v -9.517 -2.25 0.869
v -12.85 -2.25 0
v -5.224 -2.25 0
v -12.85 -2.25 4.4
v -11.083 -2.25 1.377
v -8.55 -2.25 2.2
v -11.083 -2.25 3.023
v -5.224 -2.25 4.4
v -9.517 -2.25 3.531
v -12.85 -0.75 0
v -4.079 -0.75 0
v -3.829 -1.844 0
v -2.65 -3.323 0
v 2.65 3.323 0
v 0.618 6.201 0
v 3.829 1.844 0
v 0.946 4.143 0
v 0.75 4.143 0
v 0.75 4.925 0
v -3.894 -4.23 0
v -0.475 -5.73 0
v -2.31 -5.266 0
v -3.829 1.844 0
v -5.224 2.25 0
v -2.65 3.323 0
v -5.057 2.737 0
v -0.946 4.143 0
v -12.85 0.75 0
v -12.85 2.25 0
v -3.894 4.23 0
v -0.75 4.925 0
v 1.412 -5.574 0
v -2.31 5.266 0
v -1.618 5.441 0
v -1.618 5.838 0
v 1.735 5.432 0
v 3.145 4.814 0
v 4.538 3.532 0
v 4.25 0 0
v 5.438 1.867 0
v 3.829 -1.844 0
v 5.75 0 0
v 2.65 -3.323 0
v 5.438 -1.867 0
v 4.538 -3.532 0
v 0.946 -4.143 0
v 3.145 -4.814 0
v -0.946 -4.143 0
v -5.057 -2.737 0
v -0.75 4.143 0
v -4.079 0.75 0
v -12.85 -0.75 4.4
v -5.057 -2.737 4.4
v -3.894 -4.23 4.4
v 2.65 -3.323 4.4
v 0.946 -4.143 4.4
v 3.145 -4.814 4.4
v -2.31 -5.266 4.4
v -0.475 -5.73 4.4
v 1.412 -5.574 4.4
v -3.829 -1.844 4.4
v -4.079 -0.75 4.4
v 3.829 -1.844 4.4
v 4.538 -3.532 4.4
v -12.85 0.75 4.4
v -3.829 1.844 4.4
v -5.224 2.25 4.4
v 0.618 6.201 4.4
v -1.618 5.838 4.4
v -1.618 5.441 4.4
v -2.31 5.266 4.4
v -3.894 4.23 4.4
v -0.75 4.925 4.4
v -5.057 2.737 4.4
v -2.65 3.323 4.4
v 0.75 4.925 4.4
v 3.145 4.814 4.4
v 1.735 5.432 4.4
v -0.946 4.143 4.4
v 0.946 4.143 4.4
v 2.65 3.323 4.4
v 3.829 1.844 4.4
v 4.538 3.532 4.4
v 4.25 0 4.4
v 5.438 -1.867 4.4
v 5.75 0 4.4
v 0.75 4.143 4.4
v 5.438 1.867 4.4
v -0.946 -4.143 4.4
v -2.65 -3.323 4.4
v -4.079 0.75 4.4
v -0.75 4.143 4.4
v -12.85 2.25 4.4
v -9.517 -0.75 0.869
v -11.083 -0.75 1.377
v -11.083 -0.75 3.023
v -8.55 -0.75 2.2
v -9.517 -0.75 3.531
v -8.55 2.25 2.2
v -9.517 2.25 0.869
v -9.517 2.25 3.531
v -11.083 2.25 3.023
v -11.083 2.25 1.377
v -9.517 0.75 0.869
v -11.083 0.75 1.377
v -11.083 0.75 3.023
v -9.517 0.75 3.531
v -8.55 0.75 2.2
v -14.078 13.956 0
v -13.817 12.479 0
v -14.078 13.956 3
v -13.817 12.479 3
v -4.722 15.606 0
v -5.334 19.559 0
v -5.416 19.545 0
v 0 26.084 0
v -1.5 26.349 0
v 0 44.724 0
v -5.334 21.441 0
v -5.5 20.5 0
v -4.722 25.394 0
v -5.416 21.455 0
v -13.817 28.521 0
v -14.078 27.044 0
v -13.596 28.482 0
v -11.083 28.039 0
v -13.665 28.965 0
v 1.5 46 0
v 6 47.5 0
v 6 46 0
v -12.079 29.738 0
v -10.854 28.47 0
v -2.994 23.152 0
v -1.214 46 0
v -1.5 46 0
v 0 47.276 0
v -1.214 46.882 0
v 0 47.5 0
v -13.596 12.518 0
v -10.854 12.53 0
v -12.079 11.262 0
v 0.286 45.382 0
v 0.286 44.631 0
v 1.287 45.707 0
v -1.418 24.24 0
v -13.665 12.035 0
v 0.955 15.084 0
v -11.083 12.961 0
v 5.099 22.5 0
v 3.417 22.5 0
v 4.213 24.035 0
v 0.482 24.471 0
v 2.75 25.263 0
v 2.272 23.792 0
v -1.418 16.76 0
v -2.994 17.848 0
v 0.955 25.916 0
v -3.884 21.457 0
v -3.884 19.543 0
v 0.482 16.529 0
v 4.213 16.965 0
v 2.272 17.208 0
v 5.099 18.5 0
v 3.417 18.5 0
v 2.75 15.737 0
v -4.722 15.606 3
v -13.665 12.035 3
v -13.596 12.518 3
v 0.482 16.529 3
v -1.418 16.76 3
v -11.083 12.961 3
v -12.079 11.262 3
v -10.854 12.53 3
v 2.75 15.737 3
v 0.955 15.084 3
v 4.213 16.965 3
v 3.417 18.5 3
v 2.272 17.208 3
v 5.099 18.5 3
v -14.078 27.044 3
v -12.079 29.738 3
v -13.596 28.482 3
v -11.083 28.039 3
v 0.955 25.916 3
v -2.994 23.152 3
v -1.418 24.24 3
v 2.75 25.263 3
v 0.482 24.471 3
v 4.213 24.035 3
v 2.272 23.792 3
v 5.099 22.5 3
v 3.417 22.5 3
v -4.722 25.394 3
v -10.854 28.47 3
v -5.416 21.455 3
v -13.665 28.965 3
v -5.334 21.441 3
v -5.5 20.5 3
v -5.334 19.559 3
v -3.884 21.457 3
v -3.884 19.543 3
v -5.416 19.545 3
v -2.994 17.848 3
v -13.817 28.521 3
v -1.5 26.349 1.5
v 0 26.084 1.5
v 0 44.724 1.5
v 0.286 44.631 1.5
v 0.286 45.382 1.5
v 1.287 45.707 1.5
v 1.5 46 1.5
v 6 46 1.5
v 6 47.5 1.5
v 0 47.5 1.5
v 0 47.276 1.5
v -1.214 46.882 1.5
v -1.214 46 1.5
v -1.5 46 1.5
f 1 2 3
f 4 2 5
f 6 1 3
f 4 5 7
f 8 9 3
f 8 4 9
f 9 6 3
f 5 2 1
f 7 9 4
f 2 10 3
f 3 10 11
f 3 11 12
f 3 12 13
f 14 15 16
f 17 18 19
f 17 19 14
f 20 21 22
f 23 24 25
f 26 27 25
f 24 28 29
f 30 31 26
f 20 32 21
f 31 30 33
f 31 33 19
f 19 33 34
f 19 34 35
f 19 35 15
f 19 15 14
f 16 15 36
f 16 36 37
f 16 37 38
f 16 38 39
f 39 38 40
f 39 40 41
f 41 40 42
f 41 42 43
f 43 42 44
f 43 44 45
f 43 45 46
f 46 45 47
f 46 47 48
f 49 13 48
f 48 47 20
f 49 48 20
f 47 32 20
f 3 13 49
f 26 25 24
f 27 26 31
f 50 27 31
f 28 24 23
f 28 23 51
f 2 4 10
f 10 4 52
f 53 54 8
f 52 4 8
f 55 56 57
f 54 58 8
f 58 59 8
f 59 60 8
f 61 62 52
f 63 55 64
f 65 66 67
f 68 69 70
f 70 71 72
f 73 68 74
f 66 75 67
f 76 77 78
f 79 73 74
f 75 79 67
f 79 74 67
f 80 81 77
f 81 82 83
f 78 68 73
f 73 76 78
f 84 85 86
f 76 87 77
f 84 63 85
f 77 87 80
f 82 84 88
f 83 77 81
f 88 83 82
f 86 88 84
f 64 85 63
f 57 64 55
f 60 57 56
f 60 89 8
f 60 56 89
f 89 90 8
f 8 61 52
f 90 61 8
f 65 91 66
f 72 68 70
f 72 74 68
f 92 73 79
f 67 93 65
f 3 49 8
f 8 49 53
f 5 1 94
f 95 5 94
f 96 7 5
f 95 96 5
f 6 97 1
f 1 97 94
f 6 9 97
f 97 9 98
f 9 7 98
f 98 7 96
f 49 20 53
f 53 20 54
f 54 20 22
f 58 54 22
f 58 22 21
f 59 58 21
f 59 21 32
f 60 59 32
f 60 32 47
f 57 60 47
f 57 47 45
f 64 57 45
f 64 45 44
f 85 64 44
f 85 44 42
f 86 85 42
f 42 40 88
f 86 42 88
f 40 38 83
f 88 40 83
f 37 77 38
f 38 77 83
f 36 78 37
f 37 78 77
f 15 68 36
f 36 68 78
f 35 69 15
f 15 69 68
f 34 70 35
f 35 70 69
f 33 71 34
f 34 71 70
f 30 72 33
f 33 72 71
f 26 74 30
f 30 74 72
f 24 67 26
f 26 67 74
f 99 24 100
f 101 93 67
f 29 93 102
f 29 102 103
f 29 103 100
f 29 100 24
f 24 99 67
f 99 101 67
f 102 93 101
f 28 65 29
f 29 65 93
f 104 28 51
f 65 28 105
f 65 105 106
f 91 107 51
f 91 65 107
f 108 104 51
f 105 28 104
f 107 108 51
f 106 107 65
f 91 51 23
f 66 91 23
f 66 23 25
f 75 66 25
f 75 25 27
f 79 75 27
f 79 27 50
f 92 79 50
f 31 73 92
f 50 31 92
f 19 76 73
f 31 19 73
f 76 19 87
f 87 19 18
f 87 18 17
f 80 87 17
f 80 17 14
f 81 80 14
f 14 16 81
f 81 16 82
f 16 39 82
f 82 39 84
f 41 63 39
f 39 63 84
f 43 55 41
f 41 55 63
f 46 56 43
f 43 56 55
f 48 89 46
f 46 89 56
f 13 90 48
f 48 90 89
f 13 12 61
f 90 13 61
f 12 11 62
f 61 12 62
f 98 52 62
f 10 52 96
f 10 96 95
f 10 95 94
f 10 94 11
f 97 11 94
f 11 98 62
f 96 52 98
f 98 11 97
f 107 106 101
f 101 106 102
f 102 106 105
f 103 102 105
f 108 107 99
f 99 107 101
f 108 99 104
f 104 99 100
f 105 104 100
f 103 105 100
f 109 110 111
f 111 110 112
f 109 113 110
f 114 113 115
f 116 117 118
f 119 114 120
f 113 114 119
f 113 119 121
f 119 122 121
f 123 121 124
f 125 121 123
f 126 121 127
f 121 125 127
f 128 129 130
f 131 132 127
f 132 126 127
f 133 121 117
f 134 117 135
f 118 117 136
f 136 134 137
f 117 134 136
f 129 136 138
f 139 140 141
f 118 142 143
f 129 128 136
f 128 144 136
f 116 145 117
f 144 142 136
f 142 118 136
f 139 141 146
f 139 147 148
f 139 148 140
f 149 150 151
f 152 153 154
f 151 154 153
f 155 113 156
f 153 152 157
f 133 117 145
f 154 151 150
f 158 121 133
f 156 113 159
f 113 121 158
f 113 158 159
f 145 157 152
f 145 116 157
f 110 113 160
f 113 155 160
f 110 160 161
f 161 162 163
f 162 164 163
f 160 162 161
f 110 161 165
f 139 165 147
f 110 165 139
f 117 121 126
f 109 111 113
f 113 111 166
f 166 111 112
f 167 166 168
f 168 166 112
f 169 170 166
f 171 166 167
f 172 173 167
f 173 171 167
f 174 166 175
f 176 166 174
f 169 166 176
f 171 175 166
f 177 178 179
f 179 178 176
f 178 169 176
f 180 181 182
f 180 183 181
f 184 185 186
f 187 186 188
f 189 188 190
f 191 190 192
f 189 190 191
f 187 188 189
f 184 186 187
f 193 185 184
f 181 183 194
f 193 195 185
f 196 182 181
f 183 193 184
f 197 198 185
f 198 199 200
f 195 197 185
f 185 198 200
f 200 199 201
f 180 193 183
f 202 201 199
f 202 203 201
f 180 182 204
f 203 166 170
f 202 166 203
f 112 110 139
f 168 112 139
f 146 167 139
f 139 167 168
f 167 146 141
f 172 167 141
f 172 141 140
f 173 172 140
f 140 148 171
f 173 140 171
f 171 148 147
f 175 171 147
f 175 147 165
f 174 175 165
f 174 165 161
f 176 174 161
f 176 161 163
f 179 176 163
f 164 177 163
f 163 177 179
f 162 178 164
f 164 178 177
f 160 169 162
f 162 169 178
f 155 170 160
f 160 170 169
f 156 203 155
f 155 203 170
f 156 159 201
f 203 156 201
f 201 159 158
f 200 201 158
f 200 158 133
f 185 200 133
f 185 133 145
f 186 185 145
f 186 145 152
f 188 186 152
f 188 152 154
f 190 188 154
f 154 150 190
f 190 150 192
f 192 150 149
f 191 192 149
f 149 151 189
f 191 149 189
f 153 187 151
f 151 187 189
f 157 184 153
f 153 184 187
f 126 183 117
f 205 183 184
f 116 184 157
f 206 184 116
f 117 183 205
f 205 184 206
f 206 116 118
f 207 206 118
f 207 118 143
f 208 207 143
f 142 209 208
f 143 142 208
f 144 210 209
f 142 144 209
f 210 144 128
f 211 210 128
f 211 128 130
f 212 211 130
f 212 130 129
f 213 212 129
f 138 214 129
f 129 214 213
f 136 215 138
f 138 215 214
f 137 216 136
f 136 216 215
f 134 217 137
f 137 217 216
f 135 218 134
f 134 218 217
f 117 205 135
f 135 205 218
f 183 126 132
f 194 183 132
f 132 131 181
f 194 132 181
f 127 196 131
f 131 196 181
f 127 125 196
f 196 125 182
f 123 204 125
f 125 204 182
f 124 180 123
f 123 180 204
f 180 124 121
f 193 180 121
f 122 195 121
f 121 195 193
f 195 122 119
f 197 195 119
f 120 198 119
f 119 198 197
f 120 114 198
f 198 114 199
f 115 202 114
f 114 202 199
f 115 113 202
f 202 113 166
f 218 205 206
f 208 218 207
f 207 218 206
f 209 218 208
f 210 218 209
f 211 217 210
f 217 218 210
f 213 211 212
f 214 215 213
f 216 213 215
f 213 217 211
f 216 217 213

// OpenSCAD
//
//  Copyright (C) 14-04-2012 Jasper den Ouden.
//
//  This is free software: you can redistribute it and/or modify
//  it under the terms of the GNU General Public License as published
//  by the Free Software Foundation, either version 3 of the License, or
//  (at your option) any later version.
//

module clamp(r,t,sr)
{
    w= r+2*(t+2*sr);
    h= sr+2*t;
    difference()
    {   linear_extrude(height= h) difference()
        {   union()
            {   circle(r+t);
                translate([-w,-3*t/2]) square([w + sr,3*t]);
            }
            circle(r);
            translate([-2*w,-t/2]) square([2*w + sr,t]);
        }
        translate([sr+t-w,w,h/2])  rotate([90,0]) cylinder(r=sr,h=3*w);
    }
}

module handy_clamp_leg(r,fr)
{   translate([r,0]) square([t,fr]);
    translate([r+t,fr-t]) circle(t);

    square([r+t,r+t]);
}

//Clamp for hand opening
module handy_clamp_profile(r,t,fr,a)
{
    difference()
    {   union()
        {   circle(r+t);
            rotate(a) handy_clamp_leg(r,fr);
            scale([1,-1]) rotate(a) handy_clamp_leg(r,fr);
        }
        translate([r+t/2,0]) square([2*r,r], center=true);
        circle(r);
    }
}

pr = 4; //Smaller-than-pencil radius.
fr = 15;  //Grabable thing radius.
a=80;     //Angle of grabable thing.
d = 20;   //Distance to mendel.
t = 1.5;    //Wall thicknesses.

mr = 4.25; //Mendel bolt radius.
sr = 1.4; //screw radius.

module pencil_holder_clamp()
{
    h= 2*t;
    linear_extrude(height=h) handy_clamp_profile(pr,t,fr,a);
    translate([-t,pr+t]) 
    {   cube([t,d,t]);
        translate([t,d]) cube([4*t,t,t]);
        translate([t,d]) difference()
        {   cylinder(r=t,h=t);
            translate([t,-t,-t]) cylinder(r=t,h=3*t);
        }
    }
}

module mendel_clamp()
{
    h= sr+2*t;
    difference()
    {   union()
        {   clamp(mr,t,sr);
            translate([0,mr+2*t/3]) scale([2,1]) cylinder(r=2*t/3,h=h);
        }
        translate([0,mr]) cube([t,0.9*t,4*h], center=true);
    }
}
module items()
{
    mendel_clamp();
    translate([0,pr+t+fr]) pencil_holder_clamp();
}
items();
//handy_clamp_profile(20,5,50,80);
//clamp(20,5,1.5);
